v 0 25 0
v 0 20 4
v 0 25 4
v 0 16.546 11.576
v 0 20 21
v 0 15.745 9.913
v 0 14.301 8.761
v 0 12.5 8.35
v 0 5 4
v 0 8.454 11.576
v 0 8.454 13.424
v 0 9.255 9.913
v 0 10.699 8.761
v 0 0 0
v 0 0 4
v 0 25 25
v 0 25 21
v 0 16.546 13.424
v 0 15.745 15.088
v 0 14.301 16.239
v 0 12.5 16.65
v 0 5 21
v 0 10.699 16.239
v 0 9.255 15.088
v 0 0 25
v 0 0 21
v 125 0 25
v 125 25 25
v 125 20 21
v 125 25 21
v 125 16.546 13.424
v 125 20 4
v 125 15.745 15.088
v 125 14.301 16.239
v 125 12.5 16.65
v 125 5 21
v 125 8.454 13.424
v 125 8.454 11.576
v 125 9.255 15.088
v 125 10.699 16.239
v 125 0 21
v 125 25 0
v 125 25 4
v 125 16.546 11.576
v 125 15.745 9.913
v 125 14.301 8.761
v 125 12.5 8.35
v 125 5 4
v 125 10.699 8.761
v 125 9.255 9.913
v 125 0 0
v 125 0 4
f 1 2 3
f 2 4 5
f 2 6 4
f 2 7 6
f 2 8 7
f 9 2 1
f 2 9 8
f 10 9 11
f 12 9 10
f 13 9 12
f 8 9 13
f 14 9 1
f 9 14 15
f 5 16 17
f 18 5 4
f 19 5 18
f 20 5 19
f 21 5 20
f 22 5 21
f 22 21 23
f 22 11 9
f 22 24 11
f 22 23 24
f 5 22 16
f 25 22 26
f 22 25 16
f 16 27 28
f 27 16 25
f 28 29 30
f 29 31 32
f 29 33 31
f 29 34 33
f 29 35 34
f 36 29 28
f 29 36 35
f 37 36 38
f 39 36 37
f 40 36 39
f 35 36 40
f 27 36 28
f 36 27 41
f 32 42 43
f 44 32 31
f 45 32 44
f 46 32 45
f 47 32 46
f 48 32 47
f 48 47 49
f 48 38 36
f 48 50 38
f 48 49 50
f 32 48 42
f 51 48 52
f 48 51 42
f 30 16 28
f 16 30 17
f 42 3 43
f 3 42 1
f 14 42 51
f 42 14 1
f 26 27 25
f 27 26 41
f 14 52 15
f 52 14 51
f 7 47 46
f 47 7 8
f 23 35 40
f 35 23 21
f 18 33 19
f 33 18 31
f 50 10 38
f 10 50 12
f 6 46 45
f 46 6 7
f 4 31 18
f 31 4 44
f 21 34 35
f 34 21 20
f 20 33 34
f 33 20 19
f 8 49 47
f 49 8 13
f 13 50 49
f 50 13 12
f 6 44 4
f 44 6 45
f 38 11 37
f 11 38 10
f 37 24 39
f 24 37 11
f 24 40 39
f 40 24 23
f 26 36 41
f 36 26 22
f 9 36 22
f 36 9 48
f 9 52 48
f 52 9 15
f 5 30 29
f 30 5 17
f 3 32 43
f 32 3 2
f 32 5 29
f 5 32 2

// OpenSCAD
difference(){
    cube([125,25,25]);
    translate([-1,12.5,12.5])rotate([0,90,0])cylinder(d=8.3,h=130);
    translate([-1,-1,4])cube([130,6,17]);
    translate([-1,20,4])cube([130,6,17]);
};
